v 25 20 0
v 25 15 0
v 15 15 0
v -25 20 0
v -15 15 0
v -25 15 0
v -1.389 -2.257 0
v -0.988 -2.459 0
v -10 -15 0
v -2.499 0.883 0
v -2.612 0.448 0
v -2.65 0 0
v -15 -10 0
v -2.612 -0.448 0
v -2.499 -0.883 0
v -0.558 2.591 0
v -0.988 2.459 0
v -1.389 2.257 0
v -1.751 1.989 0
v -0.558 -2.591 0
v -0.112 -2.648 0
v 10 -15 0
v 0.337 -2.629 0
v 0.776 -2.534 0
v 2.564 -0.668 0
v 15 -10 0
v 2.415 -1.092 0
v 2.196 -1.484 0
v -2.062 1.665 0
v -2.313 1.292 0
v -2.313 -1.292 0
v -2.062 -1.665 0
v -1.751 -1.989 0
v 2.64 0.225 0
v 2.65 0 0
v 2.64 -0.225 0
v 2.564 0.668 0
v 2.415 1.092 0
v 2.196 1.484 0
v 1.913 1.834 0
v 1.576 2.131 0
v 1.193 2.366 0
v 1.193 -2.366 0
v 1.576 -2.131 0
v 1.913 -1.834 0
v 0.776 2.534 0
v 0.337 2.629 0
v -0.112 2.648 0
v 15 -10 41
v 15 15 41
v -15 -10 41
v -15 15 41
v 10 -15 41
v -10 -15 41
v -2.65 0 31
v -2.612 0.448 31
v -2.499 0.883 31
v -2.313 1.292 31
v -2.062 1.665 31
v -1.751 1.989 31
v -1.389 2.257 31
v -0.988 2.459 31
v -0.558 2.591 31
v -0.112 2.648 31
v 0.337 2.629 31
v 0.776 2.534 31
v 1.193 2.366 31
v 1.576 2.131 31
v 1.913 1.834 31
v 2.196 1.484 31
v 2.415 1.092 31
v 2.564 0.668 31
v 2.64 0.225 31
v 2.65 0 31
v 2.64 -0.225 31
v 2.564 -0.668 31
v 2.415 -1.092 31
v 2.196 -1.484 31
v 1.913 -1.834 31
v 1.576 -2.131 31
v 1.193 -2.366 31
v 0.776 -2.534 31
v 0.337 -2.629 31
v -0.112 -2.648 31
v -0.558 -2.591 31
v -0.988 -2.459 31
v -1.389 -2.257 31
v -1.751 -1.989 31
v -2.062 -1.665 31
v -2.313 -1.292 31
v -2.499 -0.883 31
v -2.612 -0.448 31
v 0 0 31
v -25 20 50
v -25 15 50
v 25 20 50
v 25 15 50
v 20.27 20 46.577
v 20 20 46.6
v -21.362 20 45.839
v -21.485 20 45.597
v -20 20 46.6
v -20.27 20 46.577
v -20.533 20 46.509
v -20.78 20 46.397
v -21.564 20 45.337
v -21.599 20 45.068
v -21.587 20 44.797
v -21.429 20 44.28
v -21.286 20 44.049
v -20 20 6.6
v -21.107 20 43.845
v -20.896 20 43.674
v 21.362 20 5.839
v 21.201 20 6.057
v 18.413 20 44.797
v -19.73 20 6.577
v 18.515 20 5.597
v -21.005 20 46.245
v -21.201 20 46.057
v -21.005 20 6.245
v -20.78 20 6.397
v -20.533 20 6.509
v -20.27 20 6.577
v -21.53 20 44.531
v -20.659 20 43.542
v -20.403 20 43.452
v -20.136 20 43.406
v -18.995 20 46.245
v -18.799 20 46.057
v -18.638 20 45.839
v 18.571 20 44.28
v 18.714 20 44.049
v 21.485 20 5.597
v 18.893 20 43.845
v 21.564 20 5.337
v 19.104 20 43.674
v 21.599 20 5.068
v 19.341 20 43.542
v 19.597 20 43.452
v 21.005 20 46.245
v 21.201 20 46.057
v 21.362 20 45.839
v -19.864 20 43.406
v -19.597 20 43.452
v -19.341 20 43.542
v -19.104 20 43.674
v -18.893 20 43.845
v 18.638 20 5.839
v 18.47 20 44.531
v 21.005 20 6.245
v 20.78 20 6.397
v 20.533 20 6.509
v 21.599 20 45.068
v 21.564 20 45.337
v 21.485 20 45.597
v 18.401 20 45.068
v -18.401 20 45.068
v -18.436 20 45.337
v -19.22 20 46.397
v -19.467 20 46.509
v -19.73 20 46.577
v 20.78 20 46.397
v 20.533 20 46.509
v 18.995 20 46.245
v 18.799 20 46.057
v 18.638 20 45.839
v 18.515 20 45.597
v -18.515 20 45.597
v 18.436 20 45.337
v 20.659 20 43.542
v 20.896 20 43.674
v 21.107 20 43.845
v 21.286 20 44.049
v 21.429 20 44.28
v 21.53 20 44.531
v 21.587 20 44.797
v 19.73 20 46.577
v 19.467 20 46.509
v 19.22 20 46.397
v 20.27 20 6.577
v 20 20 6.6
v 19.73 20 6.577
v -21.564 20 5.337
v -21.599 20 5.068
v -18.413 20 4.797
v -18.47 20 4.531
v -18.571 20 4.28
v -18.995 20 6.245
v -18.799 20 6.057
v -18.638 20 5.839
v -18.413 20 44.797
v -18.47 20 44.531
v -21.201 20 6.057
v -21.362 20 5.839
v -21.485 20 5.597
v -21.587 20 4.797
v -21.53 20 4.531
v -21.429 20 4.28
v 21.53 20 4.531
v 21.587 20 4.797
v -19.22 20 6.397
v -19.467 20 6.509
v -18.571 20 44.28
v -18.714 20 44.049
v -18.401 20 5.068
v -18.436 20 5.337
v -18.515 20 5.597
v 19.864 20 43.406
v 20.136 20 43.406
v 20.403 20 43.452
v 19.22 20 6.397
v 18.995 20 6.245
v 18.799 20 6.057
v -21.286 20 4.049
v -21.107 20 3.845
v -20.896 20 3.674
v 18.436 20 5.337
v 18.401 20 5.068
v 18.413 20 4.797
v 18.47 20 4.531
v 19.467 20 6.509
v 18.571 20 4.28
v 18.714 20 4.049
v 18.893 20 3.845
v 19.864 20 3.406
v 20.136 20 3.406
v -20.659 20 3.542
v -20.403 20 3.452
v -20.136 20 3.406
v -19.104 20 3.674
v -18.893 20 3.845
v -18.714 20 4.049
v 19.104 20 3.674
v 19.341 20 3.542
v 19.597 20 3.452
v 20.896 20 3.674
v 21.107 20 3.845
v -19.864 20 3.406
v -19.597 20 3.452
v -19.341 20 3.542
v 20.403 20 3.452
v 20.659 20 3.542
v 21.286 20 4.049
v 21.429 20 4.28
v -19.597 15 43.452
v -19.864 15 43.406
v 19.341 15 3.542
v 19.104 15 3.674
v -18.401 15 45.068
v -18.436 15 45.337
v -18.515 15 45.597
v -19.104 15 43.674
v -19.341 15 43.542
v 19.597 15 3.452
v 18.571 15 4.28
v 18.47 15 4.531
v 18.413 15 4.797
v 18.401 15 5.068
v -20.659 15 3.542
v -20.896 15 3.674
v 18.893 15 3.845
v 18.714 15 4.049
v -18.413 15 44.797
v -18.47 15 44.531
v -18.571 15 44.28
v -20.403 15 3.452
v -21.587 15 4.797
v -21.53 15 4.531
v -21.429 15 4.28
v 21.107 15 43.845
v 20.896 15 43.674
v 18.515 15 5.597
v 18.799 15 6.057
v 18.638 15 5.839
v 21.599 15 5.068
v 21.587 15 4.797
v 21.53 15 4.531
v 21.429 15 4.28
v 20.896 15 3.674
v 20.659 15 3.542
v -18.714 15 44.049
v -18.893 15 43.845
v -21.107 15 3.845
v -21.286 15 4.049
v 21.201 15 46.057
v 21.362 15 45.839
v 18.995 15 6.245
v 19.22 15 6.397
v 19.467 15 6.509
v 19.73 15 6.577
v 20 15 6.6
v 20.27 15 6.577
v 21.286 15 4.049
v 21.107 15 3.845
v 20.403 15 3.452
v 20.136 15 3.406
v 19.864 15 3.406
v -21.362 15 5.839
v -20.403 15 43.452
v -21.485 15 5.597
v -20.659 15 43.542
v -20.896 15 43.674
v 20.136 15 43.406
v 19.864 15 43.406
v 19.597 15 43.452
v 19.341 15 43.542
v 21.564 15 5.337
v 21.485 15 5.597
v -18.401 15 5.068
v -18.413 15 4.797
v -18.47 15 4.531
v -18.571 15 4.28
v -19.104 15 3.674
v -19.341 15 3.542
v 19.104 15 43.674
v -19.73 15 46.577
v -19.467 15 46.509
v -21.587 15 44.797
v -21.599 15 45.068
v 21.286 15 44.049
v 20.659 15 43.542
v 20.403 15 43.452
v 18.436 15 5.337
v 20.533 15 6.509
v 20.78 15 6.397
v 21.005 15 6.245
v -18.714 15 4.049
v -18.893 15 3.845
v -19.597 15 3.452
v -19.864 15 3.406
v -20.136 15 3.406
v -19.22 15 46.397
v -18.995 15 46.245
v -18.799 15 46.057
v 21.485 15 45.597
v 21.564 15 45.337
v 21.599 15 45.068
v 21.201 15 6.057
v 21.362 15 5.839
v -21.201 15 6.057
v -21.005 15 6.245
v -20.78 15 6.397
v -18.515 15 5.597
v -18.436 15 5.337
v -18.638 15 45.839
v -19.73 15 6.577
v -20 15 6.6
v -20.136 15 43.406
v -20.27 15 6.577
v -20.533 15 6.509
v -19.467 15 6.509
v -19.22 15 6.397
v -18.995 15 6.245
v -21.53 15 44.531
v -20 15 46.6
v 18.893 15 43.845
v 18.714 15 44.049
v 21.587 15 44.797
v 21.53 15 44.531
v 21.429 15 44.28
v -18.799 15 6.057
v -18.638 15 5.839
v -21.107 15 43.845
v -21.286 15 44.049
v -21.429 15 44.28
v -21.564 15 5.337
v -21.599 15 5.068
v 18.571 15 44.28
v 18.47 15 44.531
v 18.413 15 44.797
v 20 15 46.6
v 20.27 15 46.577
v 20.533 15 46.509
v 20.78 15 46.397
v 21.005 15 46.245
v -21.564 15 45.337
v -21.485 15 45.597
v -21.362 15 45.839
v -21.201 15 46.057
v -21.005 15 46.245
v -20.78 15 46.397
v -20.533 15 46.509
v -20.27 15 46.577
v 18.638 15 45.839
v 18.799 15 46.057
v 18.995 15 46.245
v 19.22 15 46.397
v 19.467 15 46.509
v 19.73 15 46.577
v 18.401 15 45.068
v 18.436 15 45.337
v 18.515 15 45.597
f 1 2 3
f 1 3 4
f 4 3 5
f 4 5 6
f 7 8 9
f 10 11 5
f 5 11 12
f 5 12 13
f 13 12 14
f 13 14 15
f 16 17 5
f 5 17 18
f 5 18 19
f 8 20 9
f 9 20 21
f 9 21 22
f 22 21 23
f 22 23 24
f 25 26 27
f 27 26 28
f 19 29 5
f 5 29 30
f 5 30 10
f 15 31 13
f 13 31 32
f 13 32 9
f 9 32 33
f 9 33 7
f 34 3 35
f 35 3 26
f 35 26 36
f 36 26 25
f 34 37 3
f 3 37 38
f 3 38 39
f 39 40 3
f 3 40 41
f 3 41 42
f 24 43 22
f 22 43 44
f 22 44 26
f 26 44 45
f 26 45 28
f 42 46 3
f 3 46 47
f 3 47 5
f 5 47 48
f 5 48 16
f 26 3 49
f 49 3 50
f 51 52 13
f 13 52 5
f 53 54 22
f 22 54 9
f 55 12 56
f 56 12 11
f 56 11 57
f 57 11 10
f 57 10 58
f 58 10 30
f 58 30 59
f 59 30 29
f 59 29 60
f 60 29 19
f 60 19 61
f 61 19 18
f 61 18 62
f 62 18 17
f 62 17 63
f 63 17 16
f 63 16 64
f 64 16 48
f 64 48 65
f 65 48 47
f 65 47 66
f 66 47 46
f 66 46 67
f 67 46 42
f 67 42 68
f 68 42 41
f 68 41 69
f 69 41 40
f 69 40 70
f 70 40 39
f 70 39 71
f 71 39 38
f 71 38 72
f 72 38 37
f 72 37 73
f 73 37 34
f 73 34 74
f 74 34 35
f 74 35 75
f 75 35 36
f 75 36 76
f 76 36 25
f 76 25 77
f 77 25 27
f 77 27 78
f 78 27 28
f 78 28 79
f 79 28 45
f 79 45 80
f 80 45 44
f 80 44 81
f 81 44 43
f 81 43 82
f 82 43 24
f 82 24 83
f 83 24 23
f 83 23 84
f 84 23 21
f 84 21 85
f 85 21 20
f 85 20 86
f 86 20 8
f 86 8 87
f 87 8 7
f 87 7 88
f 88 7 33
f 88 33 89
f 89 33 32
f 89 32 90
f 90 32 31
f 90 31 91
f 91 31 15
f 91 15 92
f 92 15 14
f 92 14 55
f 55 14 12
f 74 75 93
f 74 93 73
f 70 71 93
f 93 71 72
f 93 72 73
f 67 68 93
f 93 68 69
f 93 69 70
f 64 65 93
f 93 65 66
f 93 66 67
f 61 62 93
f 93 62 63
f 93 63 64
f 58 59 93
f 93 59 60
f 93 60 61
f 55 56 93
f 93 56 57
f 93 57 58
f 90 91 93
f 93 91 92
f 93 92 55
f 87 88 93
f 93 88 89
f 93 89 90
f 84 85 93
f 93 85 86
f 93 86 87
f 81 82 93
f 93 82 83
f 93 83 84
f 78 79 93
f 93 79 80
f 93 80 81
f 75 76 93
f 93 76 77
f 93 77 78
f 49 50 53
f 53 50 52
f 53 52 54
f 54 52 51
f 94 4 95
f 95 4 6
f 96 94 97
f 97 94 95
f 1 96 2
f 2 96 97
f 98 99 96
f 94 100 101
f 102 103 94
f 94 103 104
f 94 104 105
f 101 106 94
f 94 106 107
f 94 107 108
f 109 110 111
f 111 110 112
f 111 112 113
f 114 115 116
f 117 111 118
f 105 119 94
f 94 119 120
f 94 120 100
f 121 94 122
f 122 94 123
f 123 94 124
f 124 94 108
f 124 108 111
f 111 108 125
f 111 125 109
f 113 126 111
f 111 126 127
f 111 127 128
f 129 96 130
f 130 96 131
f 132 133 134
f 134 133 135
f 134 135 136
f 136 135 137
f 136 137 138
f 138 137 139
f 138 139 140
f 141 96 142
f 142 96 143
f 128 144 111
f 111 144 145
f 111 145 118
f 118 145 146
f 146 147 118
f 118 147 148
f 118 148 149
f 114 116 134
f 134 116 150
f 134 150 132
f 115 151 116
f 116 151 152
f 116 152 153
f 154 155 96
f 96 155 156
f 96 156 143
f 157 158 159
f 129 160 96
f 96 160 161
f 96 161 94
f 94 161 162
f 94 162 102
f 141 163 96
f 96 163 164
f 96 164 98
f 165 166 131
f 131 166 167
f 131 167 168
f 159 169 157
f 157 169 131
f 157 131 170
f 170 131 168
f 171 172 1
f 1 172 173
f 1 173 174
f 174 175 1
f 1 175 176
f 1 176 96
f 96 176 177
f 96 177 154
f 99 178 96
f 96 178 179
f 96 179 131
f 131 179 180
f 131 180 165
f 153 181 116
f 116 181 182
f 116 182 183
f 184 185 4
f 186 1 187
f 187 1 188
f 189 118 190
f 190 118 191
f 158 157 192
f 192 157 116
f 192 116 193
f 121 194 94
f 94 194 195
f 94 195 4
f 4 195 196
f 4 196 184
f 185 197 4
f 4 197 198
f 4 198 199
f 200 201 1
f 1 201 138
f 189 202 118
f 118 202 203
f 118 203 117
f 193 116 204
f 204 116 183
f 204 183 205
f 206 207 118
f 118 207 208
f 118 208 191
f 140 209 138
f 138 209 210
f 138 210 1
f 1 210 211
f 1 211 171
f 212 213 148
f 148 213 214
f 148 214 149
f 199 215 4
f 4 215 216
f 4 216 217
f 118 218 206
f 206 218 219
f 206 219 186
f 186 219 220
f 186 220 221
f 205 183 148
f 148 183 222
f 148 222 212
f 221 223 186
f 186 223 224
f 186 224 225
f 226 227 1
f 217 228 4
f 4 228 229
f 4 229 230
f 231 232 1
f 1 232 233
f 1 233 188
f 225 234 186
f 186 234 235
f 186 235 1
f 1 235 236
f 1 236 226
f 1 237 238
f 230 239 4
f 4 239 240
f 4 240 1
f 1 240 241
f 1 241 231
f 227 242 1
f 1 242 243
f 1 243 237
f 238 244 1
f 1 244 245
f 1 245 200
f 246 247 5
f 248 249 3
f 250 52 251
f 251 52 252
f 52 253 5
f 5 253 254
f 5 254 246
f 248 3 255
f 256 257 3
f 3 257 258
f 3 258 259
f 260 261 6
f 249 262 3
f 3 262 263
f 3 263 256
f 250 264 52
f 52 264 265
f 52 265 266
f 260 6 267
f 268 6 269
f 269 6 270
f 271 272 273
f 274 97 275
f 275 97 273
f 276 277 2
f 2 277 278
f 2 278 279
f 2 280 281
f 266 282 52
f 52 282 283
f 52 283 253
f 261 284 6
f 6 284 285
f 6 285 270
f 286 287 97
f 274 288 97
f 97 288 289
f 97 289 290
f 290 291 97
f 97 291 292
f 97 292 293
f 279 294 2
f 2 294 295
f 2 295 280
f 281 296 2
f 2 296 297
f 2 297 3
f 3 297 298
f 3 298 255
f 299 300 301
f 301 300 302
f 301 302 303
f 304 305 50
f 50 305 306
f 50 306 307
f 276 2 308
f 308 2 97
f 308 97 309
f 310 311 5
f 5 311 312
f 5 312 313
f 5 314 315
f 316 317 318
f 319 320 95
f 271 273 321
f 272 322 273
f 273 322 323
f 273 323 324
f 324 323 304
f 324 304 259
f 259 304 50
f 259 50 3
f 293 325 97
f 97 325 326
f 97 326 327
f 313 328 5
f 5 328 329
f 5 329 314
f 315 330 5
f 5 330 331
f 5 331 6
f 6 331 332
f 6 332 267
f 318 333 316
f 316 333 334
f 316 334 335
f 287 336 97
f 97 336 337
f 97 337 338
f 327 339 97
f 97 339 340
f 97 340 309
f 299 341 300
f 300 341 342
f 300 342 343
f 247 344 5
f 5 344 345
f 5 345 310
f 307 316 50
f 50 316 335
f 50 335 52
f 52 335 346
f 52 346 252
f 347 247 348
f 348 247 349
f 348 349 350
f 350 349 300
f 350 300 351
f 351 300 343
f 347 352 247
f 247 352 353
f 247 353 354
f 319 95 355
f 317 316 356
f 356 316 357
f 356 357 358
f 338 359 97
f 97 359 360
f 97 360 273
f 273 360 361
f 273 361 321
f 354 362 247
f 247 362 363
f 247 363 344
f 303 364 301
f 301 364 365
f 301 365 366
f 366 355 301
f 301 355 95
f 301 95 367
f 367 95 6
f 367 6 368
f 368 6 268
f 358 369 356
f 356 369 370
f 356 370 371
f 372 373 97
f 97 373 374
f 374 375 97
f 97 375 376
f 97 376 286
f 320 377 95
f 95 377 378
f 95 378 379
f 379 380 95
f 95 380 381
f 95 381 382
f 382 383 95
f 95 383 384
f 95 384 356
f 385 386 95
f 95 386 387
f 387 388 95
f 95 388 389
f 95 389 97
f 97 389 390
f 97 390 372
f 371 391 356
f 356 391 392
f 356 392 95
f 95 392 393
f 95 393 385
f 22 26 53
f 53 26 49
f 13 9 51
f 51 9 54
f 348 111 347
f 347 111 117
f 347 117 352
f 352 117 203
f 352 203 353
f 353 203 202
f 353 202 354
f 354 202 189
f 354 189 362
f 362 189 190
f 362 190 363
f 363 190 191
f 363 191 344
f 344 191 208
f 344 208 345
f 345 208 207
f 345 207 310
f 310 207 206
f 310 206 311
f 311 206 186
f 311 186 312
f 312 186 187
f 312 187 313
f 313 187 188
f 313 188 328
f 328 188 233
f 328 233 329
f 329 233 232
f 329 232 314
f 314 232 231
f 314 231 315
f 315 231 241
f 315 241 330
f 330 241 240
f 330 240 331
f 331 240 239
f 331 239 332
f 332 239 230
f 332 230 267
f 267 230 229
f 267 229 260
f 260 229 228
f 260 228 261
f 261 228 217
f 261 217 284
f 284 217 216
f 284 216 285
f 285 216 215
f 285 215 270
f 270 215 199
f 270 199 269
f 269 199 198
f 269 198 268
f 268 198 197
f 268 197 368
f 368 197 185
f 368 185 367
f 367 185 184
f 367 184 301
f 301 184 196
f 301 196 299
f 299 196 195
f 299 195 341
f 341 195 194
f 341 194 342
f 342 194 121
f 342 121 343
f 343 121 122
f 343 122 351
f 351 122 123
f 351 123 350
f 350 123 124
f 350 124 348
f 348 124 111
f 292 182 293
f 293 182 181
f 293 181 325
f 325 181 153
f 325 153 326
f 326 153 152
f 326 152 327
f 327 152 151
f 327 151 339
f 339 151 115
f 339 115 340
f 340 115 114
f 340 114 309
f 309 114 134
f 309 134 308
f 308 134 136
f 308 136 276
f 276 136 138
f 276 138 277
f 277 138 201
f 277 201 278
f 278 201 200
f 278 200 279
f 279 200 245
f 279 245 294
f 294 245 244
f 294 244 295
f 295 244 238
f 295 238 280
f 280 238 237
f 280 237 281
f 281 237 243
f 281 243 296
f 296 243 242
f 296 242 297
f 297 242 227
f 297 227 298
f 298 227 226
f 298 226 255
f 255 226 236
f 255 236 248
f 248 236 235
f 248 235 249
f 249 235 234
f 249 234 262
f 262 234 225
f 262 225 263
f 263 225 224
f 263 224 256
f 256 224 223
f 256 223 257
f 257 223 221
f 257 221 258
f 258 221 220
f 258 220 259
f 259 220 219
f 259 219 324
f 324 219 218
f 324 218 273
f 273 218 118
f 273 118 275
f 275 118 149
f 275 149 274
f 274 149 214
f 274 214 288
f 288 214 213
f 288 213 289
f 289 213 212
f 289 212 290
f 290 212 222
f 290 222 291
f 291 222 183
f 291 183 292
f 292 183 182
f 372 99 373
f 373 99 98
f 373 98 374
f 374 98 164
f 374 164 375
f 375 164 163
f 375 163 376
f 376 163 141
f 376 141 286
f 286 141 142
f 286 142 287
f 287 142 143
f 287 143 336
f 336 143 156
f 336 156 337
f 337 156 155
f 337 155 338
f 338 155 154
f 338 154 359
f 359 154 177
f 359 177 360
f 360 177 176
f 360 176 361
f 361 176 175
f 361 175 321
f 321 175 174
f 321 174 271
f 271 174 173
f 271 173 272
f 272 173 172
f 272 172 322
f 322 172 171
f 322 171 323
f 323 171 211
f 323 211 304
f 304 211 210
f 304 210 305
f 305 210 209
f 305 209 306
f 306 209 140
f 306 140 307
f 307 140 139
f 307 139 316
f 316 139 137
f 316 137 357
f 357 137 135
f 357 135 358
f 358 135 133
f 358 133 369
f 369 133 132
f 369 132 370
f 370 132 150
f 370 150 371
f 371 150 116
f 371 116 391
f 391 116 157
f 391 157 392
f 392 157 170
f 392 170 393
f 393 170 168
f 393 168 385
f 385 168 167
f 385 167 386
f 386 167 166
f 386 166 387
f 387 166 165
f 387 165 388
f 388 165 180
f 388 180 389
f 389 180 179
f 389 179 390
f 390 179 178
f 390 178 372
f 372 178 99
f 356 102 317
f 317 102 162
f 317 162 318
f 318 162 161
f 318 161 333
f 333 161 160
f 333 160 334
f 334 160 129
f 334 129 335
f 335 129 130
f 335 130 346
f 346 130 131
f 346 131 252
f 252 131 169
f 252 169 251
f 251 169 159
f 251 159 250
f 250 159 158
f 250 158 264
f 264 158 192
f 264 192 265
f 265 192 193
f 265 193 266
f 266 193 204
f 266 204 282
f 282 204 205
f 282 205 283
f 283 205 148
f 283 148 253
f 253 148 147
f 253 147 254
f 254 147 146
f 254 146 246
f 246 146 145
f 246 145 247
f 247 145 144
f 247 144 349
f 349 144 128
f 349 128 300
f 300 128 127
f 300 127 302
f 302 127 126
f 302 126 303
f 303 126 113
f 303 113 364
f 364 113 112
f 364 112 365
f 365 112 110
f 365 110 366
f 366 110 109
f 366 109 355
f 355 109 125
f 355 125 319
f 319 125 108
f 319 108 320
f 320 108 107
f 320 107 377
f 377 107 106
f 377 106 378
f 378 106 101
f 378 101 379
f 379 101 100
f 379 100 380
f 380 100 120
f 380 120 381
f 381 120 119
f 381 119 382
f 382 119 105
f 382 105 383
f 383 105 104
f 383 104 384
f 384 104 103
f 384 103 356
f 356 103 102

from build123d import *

# Parameters (mm, degrees)
SKETCH1_W           = 30
SKETCH1_H           = 30
SKETCH1_R           = 2.65
BOSS_EXTRUDE1_DEPTH = 31
SKETCH2_W           = 30
SKETCH2_H           = 30
BOSS_EXTRUDE2_DEPTH = 10
BOSS_EXTRUDE3_DEPTH = 5
CHAMFER1_SIZE       = 5
CUT_EXTRUDE1_REACH  = 37
SKETCH4_R           = 1.6


with BuildPart() as part:
    # Sketch1 → Boss-Extrude1 (new body)
    with BuildSketch(Plane.XY):
        Rectangle(SKETCH1_W, SKETCH1_H)
        Circle(SKETCH1_R, mode=Mode.SUBTRACT)
    extrude(amount=BOSS_EXTRUDE1_DEPTH)

    # Sketch2 → Boss-Extrude2 (add)
    with BuildSketch(Plane.XY.offset(31)):
        Rectangle(SKETCH2_W, SKETCH2_H)
    extrude(amount=BOSS_EXTRUDE2_DEPTH)

    # Sketch3 → Boss-Extrude3 (add)
    with BuildSketch(Plane(origin=(0, 15, 0), x_dir=(1, 0, 0), z_dir=(0, 1, 0))):
        Polygon((0, 0), (-25, 0), (-25, -50), (25, -50), (25, 0), align=None)
    extrude(amount=BOSS_EXTRUDE3_DEPTH)

    # Chamfer1
    chamfer1_edges = [part.edges().sort_by_distance(p)[0] for p in [
        (15, -15, 20.5),
        (-15, -15, 20.5),
    ]]
    chamfer(chamfer1_edges, length=CHAMFER1_SIZE)

    # Sketch4 → Cut-Extrude1 (cut, up to next)
    with BuildSketch(Plane(origin=(0, 20, 0), x_dir=(1, 0, 0), z_dir=(0, 1, 0)), mode=Mode.PRIVATE) as cut_extrude1_sk1:
        with Locations((-20, -5)):
            Circle(SKETCH4_R)
    cut_extrude1_tool1 = extrude(cut_extrude1_sk1.sketch, amount=-CUT_EXTRUDE1_REACH, mode=Mode.PRIVATE) & part.part
    add(cut_extrude1_tool1.solids().sort_by_distance((-20, 20, 5))[0], mode=Mode.SUBTRACT)
    # Sketch4 → Cut-Extrude1 (cut, up to next)
    with BuildSketch(Plane(origin=(0, 20, 0), x_dir=(1, 0, 0), z_dir=(0, 1, 0)), mode=Mode.PRIVATE) as cut_extrude1_sk2:
        with Locations((20, -5)):
            Circle(SKETCH4_R)
    cut_extrude1_tool2 = extrude(cut_extrude1_sk2.sketch, amount=-CUT_EXTRUDE1_REACH, mode=Mode.PRIVATE) & part.part
    add(cut_extrude1_tool2.solids().sort_by_distance((20, 20, 5))[0], mode=Mode.SUBTRACT)
    # Sketch4 → Cut-Extrude1 (cut, up to next)
    with BuildSketch(Plane(origin=(0, 20, 0), x_dir=(1, 0, 0), z_dir=(0, 1, 0)), mode=Mode.PRIVATE) as cut_extrude1_sk3:
        with Locations((20, -45)):
            Circle(SKETCH4_R)
    cut_extrude1_tool3 = extrude(cut_extrude1_sk3.sketch, amount=-CUT_EXTRUDE1_REACH, mode=Mode.PRIVATE) & part.part
    add(cut_extrude1_tool3.solids().sort_by_distance((20, 20, 45))[0], mode=Mode.SUBTRACT)
    # Sketch4 → Cut-Extrude1 (cut, up to next)
    with BuildSketch(Plane(origin=(0, 20, 0), x_dir=(1, 0, 0), z_dir=(0, 1, 0)), mode=Mode.PRIVATE) as cut_extrude1_sk4:
        with Locations((-20, -45)):
            Circle(SKETCH4_R)
    cut_extrude1_tool4 = extrude(cut_extrude1_sk4.sketch, amount=-CUT_EXTRUDE1_REACH, mode=Mode.PRIVATE) & part.part
    add(cut_extrude1_tool4.solids().sort_by_distance((-20, 20, 45))[0], mode=Mode.SUBTRACT)


solid = part.part
